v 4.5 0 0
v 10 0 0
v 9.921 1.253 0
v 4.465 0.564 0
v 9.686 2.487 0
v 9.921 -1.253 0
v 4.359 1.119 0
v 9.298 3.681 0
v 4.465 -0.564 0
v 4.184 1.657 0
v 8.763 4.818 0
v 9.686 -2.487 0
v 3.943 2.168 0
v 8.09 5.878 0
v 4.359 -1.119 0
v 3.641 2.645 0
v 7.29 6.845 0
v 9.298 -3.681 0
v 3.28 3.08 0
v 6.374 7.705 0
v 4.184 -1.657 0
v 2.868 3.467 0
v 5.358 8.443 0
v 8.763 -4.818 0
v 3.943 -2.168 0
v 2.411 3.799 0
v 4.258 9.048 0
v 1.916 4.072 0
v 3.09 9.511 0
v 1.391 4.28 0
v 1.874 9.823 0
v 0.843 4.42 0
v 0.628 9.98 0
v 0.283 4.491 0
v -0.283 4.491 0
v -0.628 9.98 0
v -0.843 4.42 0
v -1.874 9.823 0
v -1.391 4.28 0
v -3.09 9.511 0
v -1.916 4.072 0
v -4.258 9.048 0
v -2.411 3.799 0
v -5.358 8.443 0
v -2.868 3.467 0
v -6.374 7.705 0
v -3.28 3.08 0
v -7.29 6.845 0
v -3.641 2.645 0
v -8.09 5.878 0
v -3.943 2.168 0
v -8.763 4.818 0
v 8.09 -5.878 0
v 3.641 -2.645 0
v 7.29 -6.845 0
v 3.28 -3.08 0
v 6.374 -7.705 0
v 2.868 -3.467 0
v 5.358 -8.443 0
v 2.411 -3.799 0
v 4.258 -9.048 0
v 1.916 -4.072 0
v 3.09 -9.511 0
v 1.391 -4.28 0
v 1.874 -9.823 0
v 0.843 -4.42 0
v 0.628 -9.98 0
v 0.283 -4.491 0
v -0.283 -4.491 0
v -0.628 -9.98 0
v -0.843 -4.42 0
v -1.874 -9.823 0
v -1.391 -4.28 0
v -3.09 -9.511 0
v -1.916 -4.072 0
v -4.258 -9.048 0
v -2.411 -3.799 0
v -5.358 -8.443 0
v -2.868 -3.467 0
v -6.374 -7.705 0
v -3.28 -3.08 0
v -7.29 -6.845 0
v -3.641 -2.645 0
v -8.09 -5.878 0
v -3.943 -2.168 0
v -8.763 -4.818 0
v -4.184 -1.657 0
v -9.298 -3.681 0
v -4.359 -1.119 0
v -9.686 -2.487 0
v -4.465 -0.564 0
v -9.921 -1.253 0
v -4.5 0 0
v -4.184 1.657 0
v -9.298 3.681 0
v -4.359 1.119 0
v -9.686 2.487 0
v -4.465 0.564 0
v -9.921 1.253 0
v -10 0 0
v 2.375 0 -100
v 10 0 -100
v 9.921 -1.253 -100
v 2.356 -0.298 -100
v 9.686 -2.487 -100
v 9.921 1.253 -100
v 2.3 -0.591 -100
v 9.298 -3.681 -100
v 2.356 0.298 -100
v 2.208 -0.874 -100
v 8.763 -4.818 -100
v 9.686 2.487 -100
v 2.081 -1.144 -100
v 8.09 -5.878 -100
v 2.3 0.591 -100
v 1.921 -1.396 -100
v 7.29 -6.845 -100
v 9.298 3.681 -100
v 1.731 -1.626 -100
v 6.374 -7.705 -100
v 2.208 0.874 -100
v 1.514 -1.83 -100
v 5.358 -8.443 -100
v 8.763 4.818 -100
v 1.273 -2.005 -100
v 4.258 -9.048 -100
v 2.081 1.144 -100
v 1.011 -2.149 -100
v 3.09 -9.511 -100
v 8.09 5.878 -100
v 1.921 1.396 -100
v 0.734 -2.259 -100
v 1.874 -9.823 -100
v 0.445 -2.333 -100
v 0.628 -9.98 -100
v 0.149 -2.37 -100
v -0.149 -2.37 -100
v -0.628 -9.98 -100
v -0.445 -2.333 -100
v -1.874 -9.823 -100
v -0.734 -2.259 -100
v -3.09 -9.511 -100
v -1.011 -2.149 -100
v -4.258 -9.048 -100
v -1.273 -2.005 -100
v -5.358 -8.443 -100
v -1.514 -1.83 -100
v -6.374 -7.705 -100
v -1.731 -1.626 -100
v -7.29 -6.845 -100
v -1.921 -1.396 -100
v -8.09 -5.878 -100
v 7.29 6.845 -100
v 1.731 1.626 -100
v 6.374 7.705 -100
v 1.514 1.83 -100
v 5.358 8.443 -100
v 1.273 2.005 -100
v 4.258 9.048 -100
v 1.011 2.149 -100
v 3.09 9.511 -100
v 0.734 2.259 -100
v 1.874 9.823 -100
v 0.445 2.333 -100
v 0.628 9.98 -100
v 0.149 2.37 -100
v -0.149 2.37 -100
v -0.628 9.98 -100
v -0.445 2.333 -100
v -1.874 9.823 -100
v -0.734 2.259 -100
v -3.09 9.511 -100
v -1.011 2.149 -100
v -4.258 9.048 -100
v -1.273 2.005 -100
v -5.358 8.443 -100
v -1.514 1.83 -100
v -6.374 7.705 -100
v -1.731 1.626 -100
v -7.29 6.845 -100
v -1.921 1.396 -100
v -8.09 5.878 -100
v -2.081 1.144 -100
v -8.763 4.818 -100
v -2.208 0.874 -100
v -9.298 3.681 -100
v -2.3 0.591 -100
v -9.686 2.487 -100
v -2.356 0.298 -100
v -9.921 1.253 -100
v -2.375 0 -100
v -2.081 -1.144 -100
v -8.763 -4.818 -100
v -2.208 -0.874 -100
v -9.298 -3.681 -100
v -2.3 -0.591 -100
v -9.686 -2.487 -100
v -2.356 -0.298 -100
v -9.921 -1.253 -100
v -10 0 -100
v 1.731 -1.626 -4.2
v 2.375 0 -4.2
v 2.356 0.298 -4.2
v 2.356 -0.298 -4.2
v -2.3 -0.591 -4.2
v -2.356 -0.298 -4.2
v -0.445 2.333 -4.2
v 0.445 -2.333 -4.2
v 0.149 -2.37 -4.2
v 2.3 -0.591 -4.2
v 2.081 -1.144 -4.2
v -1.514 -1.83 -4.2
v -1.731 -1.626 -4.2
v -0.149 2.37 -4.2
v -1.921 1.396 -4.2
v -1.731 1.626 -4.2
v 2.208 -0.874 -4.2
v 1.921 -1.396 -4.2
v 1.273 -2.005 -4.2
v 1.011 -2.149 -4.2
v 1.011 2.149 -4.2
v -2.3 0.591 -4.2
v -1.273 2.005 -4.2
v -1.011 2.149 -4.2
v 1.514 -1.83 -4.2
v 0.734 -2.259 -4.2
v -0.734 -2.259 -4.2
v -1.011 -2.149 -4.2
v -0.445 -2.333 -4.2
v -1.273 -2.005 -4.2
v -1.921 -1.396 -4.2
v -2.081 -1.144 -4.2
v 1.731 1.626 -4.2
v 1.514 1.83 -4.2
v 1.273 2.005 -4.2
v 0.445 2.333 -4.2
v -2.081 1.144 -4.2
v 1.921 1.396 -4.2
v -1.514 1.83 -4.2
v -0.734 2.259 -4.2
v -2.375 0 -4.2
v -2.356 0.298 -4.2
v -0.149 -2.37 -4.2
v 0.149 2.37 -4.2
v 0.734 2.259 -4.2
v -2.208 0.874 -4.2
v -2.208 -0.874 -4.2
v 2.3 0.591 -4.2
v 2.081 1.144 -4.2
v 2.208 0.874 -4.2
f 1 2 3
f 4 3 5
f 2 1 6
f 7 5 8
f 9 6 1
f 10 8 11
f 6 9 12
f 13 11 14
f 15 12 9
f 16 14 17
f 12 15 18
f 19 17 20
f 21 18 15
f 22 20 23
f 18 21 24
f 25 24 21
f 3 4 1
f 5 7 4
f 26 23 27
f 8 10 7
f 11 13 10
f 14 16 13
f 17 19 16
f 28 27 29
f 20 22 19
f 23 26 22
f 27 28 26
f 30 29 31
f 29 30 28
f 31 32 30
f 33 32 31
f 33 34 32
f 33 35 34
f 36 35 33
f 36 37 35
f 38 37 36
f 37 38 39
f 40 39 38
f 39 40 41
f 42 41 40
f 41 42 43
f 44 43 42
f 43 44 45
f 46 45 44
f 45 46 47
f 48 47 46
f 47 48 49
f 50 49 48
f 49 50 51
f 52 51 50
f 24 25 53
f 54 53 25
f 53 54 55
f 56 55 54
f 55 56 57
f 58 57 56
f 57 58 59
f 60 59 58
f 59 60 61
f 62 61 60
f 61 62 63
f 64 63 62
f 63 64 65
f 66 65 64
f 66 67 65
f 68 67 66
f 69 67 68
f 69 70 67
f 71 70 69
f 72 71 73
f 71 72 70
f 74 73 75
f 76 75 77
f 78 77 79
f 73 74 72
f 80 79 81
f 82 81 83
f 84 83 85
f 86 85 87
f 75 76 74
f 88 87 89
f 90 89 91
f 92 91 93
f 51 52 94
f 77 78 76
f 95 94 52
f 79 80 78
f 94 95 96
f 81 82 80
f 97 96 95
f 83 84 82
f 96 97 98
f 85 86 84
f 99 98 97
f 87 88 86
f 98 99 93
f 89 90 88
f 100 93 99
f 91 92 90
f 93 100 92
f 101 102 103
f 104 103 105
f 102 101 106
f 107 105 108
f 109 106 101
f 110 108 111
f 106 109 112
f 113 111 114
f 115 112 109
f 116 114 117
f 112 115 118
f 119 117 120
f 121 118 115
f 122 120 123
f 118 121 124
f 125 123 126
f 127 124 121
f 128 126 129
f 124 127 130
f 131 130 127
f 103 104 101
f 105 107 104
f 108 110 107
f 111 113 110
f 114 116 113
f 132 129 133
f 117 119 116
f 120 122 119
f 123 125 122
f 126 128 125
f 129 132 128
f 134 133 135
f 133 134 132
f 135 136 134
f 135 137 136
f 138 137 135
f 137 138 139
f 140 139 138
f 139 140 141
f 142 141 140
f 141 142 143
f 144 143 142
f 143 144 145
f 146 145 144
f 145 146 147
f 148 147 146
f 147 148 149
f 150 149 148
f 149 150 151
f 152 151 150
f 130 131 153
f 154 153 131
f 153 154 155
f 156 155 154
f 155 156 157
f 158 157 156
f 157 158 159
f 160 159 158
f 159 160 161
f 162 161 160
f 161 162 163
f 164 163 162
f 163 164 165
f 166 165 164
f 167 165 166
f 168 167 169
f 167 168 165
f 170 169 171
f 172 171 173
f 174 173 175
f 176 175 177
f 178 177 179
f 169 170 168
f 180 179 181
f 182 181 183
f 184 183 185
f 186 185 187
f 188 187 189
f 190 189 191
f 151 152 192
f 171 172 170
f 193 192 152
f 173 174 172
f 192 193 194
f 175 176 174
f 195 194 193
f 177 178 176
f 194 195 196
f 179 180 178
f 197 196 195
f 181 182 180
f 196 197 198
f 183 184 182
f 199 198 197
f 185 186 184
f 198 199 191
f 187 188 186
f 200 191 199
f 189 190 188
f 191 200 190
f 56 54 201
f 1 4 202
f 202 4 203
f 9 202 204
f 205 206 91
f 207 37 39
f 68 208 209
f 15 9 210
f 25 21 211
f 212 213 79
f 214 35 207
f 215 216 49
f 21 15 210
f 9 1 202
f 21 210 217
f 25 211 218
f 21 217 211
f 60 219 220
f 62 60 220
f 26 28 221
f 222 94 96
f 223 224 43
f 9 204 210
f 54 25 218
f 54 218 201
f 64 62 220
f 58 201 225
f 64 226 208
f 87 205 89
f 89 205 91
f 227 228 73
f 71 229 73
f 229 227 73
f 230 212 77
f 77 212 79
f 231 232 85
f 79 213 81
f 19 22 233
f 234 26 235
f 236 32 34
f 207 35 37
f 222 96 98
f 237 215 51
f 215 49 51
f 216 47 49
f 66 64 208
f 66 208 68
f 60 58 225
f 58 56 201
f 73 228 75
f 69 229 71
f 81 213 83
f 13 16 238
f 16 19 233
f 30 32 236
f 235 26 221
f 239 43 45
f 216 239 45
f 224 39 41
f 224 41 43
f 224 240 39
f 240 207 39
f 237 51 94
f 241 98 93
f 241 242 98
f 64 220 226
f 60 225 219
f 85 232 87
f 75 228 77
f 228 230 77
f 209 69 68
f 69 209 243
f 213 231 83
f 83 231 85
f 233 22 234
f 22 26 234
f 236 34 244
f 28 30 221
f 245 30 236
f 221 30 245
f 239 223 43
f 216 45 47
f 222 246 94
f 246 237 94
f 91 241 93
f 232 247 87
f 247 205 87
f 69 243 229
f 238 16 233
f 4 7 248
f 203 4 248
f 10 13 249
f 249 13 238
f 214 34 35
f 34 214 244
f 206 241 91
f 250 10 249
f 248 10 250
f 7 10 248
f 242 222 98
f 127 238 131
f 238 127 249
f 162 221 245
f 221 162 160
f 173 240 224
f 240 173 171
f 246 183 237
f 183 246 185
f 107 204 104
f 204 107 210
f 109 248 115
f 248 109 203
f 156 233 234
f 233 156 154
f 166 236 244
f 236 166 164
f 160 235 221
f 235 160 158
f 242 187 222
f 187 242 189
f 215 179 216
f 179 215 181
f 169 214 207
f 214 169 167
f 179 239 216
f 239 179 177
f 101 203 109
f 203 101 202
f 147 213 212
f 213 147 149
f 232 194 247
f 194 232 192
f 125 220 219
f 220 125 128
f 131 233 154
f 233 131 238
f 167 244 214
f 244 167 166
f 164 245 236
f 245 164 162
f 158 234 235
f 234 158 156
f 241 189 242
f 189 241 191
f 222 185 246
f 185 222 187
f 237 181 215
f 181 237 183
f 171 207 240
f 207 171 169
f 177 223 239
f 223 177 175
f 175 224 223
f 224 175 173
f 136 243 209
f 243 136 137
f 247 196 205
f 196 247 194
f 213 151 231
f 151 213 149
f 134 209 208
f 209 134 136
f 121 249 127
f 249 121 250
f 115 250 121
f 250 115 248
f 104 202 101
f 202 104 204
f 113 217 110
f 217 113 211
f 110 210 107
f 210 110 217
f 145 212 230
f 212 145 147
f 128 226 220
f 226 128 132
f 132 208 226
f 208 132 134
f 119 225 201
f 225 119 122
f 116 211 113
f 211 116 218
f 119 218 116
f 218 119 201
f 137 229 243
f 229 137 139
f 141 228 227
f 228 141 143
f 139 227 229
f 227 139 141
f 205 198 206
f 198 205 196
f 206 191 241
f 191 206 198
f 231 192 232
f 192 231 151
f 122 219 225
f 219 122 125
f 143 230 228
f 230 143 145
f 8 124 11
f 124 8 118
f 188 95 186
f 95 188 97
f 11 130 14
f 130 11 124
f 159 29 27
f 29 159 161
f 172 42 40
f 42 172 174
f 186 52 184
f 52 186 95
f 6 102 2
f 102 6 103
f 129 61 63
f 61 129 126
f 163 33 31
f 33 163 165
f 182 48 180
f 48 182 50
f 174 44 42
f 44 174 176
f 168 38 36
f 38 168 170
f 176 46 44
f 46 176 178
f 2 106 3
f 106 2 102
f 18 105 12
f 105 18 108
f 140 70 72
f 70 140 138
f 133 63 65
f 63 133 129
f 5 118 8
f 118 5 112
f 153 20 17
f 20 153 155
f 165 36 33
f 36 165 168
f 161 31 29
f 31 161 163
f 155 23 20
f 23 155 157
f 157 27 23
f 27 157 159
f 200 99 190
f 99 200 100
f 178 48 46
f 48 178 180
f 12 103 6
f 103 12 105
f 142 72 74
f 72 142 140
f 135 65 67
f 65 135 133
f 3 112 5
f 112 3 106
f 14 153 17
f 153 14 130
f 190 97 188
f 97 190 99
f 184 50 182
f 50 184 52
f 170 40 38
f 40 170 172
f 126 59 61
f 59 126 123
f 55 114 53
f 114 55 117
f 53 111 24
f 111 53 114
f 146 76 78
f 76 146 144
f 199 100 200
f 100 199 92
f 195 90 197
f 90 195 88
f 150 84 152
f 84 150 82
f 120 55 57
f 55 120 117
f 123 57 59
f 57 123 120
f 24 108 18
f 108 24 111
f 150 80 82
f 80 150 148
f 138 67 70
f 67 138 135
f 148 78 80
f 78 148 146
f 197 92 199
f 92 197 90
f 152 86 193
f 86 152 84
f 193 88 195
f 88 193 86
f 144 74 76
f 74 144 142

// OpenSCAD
$fn = 50;


difference() {
	union() {
		translate(v = [0, 0, -100.0000000000]) {
			cylinder(h = 100, r = 10.0000000000);
		}
		cylinder(h = 0, r = 13.0000000000);
	}
	union() {
		translate(v = [0, 0, 0]) {
			rotate(a = [0, 0, 0]) {
				difference() {
					union() {
						#translate(v = [0, 0, -100.0000000000]) {
							cylinder(h = 100, r = 2.2500000000);
						}
						#translate(v = [0, 0, -4.2000000000]) {
							cylinder(h = 4.2000000000, r = 10.0000000000, r1 = 2.3750000000, r2 = 4.5000000000);
						}
						#translate(v = [0, 0, -100.0000000000]) {
							cylinder(h = 100, r = 2.3750000000);
						}
						#translate(v = [0, 0, -100.0000000000]) {
							cylinder(h = 100, r = 2.2500000000);
						}
					}
					union();
				}
			}
		}
	}
}
